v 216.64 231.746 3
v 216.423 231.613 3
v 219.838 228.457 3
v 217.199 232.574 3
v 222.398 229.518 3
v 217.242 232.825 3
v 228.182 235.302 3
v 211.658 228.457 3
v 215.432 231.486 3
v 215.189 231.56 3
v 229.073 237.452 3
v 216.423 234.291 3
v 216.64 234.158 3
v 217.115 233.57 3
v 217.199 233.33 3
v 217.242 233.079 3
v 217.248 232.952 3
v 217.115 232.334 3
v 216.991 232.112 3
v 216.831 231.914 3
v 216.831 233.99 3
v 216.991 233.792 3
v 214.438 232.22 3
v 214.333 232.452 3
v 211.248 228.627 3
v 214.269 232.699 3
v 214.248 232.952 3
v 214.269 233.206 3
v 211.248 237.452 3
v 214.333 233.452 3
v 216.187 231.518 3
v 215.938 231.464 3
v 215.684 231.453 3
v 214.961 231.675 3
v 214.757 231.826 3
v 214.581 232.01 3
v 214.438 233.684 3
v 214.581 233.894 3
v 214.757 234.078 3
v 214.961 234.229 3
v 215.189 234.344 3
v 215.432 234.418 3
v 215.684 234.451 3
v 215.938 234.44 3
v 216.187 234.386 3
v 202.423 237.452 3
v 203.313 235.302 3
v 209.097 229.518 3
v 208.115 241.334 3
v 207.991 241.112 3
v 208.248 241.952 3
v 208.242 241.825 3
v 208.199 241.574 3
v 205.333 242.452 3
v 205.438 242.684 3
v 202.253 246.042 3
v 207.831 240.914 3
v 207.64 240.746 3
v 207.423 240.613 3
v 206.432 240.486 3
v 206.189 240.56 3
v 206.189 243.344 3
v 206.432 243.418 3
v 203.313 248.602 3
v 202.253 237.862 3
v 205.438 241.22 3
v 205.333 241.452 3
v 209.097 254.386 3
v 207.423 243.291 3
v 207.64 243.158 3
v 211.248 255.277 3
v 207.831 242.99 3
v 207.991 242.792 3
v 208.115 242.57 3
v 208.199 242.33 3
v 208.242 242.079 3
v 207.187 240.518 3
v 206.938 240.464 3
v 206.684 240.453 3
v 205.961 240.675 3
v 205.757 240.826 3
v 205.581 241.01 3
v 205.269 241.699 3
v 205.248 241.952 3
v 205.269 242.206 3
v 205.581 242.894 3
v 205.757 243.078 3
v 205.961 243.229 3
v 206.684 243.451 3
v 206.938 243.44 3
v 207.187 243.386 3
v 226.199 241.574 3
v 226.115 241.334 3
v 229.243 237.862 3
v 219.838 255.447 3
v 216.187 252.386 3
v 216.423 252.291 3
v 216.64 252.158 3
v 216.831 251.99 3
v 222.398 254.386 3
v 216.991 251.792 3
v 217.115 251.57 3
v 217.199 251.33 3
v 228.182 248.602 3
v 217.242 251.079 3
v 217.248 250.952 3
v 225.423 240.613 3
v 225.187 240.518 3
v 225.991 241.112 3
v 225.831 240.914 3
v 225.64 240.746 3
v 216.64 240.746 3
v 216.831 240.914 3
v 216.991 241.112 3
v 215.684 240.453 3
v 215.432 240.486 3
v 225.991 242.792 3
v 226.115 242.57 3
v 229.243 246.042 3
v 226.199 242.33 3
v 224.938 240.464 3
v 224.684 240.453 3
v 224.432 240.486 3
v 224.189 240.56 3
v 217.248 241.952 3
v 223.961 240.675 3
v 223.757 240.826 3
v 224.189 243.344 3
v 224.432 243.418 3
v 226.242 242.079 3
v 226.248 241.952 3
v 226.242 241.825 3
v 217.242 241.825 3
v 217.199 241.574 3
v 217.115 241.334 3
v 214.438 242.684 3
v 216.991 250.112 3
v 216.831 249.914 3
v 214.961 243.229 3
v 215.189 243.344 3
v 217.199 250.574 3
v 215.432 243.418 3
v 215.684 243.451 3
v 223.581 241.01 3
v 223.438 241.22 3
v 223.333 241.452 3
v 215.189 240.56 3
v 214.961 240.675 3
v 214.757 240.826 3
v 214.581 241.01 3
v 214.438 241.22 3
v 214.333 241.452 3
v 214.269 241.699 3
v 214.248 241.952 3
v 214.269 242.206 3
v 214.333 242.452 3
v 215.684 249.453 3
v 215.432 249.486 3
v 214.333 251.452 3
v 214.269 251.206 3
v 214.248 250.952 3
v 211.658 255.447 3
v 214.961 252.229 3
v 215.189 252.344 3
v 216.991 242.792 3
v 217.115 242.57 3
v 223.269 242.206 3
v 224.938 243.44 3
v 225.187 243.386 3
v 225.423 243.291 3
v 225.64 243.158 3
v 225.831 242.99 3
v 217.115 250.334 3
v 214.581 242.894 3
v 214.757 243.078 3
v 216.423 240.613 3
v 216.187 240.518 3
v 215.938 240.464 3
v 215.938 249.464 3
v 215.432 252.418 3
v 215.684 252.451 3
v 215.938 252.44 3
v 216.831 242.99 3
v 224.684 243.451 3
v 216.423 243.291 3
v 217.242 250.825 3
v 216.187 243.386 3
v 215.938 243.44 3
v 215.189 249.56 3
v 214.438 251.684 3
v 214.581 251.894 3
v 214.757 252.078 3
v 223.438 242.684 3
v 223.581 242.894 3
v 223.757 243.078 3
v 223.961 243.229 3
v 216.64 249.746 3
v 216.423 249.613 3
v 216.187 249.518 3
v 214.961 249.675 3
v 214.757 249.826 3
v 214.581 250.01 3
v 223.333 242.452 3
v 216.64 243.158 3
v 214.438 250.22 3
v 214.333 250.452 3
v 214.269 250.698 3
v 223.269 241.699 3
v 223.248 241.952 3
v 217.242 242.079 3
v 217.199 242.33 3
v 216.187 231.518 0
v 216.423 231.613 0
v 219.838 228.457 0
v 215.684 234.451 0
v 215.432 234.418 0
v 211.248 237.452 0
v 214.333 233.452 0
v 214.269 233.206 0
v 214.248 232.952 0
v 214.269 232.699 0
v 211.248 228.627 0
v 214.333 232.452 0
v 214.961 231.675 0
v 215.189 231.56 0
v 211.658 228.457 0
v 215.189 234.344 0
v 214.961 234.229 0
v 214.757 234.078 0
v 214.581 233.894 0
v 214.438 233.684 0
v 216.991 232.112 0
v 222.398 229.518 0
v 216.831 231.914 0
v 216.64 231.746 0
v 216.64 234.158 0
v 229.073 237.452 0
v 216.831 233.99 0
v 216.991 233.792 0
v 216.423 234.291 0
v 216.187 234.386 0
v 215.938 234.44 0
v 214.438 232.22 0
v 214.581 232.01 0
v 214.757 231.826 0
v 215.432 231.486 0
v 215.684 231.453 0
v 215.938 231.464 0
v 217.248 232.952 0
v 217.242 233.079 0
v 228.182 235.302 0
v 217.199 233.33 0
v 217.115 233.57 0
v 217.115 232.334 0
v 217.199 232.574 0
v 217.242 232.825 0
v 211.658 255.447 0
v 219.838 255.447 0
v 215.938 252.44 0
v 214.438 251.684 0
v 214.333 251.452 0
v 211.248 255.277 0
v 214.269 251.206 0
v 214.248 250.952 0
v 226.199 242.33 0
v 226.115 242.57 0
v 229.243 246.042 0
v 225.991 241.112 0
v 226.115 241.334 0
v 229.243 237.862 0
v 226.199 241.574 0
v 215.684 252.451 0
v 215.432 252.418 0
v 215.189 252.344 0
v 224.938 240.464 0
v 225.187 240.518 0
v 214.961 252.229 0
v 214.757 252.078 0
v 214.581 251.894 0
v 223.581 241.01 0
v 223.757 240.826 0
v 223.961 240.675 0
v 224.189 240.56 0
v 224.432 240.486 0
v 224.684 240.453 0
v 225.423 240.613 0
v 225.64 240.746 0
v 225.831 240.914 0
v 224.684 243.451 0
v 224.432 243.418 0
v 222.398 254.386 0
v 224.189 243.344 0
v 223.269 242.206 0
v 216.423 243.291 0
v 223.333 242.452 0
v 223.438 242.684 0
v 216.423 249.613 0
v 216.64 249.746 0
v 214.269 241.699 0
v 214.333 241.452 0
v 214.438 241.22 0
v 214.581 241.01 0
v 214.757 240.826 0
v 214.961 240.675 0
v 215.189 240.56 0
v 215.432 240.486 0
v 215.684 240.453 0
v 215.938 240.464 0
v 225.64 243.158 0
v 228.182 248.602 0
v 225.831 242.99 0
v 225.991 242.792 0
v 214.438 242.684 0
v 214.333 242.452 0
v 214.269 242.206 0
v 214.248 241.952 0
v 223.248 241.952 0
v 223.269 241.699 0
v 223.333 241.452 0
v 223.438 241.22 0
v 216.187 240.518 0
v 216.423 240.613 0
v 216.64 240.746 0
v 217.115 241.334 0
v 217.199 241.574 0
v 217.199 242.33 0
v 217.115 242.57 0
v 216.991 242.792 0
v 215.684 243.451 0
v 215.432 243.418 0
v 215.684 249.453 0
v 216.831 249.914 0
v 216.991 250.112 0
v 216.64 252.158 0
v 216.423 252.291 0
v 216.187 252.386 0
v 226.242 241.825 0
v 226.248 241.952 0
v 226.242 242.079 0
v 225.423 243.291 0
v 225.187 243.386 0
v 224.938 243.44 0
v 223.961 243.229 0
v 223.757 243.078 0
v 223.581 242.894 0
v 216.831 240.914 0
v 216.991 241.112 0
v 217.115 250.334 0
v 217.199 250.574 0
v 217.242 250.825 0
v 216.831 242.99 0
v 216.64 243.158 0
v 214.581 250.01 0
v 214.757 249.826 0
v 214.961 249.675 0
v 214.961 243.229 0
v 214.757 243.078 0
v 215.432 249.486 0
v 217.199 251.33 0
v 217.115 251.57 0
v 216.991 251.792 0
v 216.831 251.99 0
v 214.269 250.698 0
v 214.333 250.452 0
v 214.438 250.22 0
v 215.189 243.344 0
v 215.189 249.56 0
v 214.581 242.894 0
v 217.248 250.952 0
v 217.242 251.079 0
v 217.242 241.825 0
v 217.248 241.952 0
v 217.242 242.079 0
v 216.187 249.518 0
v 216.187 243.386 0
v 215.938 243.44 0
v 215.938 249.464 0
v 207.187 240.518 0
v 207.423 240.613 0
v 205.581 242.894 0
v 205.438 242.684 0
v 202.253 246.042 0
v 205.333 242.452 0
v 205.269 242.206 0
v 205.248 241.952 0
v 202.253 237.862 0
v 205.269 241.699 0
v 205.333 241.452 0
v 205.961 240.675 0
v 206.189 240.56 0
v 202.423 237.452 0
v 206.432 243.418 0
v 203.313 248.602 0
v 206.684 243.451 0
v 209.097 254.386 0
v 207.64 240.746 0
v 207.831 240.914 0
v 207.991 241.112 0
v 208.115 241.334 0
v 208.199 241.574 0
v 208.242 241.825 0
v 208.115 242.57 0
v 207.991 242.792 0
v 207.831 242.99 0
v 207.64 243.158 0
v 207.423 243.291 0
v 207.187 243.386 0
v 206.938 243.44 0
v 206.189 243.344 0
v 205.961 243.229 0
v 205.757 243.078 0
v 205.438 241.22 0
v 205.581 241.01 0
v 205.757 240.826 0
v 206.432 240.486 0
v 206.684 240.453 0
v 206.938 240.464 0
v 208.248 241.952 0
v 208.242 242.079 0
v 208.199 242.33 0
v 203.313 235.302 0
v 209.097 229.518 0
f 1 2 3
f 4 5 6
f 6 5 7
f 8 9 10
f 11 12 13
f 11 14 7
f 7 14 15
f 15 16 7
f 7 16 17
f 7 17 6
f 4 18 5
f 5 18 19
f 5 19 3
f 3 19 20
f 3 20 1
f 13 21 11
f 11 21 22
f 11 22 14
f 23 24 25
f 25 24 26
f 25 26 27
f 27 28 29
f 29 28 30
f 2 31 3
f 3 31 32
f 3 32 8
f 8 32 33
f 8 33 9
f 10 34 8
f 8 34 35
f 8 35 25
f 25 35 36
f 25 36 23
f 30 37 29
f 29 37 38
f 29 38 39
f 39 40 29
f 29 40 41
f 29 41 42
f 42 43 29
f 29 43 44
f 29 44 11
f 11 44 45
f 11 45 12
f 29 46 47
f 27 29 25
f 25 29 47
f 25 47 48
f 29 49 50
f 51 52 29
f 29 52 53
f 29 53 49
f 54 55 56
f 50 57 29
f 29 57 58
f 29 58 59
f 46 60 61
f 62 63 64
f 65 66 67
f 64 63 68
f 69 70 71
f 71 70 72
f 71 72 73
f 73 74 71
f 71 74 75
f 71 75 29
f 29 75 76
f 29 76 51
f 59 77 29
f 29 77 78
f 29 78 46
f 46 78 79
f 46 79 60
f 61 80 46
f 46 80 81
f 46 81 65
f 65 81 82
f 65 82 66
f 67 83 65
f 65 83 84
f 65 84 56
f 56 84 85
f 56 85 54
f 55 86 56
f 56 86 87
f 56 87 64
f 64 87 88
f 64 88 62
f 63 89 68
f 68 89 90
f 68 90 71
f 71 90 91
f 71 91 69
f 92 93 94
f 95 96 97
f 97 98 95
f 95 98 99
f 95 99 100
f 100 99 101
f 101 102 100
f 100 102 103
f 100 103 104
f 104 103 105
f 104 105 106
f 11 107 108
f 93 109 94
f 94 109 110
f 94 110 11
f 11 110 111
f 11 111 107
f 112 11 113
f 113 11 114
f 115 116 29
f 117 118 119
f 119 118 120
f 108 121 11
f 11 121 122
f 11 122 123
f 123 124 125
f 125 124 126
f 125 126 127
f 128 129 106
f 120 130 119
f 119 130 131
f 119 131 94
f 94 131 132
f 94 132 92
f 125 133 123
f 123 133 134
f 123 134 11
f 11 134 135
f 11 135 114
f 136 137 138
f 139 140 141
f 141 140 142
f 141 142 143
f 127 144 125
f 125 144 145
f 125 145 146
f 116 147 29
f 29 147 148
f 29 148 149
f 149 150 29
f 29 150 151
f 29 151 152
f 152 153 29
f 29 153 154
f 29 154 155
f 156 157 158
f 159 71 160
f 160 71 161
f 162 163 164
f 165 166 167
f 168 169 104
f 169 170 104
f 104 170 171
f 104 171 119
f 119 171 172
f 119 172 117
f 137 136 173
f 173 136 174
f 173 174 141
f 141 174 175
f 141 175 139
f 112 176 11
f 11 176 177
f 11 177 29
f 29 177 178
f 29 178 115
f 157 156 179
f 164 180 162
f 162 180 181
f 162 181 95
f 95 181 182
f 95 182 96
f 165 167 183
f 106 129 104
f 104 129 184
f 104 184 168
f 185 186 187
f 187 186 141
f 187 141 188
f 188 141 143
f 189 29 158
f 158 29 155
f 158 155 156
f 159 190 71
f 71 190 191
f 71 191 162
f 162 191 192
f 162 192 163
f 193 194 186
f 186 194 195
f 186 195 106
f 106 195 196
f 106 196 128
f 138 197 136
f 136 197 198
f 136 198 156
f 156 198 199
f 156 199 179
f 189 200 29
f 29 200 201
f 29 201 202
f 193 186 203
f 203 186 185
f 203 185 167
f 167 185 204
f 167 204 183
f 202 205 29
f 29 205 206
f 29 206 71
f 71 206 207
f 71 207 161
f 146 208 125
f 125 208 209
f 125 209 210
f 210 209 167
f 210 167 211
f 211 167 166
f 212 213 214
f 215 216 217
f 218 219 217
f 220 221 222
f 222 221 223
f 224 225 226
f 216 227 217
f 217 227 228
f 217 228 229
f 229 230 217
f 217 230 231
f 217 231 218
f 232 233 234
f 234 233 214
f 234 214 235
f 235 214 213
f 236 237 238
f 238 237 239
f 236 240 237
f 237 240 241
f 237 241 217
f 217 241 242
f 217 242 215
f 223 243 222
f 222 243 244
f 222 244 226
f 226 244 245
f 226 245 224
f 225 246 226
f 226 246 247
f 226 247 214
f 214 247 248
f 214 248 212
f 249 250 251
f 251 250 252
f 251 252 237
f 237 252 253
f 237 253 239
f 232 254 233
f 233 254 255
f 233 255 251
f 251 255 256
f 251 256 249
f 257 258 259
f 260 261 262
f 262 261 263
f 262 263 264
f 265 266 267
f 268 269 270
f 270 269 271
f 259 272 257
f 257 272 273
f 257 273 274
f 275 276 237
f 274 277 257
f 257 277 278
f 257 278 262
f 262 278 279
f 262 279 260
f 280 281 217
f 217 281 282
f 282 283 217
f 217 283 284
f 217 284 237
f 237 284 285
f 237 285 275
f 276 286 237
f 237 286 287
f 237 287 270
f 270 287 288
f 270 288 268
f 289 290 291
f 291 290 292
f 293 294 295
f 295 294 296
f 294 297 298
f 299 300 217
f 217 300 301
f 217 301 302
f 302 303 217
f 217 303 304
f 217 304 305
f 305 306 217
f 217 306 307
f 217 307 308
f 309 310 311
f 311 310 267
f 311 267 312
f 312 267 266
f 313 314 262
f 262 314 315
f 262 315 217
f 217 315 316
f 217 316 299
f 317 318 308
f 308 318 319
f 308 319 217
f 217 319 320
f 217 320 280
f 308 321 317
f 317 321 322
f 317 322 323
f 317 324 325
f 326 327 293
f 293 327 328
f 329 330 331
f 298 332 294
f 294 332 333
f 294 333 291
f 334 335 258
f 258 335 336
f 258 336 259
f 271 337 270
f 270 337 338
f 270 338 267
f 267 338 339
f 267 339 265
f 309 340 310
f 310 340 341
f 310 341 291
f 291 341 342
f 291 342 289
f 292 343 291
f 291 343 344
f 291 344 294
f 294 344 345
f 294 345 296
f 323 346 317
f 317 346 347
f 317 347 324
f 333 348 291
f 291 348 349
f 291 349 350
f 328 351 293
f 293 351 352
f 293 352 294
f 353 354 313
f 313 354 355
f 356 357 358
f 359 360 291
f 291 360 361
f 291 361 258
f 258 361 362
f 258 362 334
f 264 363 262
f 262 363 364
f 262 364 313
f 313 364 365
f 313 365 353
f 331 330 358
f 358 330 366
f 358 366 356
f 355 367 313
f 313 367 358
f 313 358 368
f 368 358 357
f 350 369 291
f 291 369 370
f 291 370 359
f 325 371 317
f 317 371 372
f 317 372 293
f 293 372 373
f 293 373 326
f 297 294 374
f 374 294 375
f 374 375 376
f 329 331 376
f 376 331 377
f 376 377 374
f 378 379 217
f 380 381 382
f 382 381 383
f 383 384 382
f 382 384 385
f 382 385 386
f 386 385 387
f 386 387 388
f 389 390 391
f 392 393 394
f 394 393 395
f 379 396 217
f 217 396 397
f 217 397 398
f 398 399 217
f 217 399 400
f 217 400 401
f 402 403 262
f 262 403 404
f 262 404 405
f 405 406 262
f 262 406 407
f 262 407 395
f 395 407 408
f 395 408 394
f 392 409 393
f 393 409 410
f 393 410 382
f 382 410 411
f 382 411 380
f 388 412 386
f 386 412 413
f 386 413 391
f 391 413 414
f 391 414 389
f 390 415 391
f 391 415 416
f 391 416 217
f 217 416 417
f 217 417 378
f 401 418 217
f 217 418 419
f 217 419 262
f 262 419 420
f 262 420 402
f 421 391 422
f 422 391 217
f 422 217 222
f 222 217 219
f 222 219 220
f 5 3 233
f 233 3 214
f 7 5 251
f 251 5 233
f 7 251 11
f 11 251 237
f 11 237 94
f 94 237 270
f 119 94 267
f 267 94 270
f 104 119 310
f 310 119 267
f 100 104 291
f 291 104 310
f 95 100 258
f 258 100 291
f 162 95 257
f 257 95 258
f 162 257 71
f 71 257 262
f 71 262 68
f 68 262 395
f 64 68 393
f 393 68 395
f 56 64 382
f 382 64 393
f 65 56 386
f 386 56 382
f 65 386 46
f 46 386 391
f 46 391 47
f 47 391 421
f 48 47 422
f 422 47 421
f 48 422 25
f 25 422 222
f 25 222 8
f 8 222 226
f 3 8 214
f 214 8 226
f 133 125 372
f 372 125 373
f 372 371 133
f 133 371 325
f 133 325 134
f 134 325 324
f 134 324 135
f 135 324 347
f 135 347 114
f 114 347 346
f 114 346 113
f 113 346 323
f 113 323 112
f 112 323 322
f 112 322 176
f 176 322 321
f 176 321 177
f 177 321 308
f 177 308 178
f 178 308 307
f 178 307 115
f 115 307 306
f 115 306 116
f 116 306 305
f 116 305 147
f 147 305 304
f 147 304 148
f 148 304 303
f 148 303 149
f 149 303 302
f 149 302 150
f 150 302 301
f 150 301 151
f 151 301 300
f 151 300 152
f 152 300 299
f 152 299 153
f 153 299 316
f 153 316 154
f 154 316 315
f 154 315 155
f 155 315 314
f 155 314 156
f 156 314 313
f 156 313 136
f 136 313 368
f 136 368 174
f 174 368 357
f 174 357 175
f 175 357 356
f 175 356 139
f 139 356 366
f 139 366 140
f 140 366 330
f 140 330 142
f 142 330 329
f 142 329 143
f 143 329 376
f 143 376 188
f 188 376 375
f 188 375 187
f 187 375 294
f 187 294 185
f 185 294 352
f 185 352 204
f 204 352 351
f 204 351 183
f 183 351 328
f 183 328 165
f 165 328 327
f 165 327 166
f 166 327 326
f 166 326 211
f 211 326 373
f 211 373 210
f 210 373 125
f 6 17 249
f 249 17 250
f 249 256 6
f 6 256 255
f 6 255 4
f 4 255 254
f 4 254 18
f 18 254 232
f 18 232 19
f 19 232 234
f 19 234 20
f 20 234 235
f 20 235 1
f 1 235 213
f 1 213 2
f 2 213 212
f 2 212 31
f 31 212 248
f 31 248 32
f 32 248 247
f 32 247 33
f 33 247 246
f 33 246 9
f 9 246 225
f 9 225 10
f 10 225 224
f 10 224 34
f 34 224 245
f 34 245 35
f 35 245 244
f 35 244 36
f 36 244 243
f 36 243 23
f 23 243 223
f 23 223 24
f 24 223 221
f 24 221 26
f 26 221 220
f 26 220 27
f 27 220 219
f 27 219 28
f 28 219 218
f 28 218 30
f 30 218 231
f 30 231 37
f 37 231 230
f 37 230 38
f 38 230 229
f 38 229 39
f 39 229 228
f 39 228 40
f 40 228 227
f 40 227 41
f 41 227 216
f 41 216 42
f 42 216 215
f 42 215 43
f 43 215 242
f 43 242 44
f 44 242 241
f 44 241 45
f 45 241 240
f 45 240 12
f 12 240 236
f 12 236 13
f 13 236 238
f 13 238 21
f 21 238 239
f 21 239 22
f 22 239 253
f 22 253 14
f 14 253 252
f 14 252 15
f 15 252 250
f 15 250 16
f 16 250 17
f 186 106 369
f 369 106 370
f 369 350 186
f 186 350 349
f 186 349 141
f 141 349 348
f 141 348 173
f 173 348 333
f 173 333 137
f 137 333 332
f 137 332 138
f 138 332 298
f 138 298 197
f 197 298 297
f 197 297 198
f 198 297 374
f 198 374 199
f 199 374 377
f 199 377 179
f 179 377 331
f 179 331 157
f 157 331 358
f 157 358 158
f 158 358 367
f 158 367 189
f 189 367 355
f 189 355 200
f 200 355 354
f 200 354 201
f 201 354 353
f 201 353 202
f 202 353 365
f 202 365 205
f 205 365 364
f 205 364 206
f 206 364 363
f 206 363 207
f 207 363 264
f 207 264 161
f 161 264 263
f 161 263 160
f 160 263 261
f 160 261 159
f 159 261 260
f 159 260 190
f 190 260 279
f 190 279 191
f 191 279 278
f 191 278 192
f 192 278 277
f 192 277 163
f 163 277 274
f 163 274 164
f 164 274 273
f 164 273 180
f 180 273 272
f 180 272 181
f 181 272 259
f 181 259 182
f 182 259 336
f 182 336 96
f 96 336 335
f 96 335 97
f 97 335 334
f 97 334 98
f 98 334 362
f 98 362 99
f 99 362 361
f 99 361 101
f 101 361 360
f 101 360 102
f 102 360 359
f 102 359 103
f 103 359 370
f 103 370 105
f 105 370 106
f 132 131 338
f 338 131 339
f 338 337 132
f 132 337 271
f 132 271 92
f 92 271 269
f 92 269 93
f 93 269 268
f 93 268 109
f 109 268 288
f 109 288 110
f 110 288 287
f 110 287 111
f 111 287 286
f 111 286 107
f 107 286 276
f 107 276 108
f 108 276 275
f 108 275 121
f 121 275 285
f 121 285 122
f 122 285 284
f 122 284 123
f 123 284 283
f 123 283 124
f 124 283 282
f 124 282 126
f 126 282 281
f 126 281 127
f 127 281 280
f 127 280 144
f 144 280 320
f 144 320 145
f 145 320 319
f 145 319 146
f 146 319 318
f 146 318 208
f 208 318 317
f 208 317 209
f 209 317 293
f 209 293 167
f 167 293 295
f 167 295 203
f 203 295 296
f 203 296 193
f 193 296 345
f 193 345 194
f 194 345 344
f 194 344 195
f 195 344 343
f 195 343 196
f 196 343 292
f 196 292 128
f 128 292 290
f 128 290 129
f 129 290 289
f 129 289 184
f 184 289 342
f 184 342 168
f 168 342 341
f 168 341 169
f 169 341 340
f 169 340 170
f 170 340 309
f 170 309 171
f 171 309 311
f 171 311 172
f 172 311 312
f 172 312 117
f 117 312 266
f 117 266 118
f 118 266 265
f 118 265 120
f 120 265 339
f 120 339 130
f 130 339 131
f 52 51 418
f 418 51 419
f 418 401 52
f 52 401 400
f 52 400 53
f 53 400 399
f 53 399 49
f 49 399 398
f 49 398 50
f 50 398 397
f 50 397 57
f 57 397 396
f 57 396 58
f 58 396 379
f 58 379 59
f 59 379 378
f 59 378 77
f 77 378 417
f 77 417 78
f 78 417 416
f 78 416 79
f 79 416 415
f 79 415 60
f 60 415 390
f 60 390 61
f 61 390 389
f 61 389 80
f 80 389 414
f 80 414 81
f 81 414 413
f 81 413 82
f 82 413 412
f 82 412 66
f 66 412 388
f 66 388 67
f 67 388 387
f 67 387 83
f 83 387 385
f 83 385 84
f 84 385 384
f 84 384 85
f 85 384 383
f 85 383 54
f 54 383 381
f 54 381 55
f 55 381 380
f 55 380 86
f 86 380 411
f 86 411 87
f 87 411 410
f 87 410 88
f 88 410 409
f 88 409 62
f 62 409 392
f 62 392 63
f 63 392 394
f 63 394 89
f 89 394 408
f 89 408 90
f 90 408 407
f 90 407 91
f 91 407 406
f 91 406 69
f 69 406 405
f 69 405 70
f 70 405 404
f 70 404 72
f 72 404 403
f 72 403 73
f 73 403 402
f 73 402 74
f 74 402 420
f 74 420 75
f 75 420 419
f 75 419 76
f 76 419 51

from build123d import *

# Parameters (mm, degrees)
MODEL_R                 = 1.5
SALIENTE_EXTRUIR1_DEPTH = 3


with BuildPart() as part:
    # Model → Saliente-Extruir1 (new body)
    with BuildSketch(Plane.XY):
        Polygon((219.837619938, 228.457019993), (211.657995889, 228.457019993), (209.097335717, 229.517680165), (203.313468085, 235.301547797), (202.252807913, 237.862207969), (202.252807913, 246.041832017), (203.313468085, 248.602492189), (209.097335717, 254.386359821), (211.657995889, 255.447019993), (219.837619938, 255.447019993), (222.39828011, 254.386359821), (228.182147742, 248.602492189), (229.242807914, 246.041832017), (229.242807914, 237.862207969), (228.182147742, 235.301547797), (222.39828011, 229.517680165), align=None)
        with Locations((215.747807914, 241.952019993)):
            Circle(MODEL_R, mode=Mode.SUBTRACT)
        with Locations((215.747807914, 232.952019993)):
            Circle(MODEL_R, mode=Mode.SUBTRACT)
        with Locations((215.747807914, 250.952019993)):
            Circle(MODEL_R, mode=Mode.SUBTRACT)
        with Locations((224.747807913, 241.952019993)):
            Circle(MODEL_R, mode=Mode.SUBTRACT)
        with Locations((206.747807913, 241.952019993)):
            Circle(MODEL_R, mode=Mode.SUBTRACT)
    extrude(amount=SALIENTE_EXTRUIR1_DEPTH)


solid = part.part
